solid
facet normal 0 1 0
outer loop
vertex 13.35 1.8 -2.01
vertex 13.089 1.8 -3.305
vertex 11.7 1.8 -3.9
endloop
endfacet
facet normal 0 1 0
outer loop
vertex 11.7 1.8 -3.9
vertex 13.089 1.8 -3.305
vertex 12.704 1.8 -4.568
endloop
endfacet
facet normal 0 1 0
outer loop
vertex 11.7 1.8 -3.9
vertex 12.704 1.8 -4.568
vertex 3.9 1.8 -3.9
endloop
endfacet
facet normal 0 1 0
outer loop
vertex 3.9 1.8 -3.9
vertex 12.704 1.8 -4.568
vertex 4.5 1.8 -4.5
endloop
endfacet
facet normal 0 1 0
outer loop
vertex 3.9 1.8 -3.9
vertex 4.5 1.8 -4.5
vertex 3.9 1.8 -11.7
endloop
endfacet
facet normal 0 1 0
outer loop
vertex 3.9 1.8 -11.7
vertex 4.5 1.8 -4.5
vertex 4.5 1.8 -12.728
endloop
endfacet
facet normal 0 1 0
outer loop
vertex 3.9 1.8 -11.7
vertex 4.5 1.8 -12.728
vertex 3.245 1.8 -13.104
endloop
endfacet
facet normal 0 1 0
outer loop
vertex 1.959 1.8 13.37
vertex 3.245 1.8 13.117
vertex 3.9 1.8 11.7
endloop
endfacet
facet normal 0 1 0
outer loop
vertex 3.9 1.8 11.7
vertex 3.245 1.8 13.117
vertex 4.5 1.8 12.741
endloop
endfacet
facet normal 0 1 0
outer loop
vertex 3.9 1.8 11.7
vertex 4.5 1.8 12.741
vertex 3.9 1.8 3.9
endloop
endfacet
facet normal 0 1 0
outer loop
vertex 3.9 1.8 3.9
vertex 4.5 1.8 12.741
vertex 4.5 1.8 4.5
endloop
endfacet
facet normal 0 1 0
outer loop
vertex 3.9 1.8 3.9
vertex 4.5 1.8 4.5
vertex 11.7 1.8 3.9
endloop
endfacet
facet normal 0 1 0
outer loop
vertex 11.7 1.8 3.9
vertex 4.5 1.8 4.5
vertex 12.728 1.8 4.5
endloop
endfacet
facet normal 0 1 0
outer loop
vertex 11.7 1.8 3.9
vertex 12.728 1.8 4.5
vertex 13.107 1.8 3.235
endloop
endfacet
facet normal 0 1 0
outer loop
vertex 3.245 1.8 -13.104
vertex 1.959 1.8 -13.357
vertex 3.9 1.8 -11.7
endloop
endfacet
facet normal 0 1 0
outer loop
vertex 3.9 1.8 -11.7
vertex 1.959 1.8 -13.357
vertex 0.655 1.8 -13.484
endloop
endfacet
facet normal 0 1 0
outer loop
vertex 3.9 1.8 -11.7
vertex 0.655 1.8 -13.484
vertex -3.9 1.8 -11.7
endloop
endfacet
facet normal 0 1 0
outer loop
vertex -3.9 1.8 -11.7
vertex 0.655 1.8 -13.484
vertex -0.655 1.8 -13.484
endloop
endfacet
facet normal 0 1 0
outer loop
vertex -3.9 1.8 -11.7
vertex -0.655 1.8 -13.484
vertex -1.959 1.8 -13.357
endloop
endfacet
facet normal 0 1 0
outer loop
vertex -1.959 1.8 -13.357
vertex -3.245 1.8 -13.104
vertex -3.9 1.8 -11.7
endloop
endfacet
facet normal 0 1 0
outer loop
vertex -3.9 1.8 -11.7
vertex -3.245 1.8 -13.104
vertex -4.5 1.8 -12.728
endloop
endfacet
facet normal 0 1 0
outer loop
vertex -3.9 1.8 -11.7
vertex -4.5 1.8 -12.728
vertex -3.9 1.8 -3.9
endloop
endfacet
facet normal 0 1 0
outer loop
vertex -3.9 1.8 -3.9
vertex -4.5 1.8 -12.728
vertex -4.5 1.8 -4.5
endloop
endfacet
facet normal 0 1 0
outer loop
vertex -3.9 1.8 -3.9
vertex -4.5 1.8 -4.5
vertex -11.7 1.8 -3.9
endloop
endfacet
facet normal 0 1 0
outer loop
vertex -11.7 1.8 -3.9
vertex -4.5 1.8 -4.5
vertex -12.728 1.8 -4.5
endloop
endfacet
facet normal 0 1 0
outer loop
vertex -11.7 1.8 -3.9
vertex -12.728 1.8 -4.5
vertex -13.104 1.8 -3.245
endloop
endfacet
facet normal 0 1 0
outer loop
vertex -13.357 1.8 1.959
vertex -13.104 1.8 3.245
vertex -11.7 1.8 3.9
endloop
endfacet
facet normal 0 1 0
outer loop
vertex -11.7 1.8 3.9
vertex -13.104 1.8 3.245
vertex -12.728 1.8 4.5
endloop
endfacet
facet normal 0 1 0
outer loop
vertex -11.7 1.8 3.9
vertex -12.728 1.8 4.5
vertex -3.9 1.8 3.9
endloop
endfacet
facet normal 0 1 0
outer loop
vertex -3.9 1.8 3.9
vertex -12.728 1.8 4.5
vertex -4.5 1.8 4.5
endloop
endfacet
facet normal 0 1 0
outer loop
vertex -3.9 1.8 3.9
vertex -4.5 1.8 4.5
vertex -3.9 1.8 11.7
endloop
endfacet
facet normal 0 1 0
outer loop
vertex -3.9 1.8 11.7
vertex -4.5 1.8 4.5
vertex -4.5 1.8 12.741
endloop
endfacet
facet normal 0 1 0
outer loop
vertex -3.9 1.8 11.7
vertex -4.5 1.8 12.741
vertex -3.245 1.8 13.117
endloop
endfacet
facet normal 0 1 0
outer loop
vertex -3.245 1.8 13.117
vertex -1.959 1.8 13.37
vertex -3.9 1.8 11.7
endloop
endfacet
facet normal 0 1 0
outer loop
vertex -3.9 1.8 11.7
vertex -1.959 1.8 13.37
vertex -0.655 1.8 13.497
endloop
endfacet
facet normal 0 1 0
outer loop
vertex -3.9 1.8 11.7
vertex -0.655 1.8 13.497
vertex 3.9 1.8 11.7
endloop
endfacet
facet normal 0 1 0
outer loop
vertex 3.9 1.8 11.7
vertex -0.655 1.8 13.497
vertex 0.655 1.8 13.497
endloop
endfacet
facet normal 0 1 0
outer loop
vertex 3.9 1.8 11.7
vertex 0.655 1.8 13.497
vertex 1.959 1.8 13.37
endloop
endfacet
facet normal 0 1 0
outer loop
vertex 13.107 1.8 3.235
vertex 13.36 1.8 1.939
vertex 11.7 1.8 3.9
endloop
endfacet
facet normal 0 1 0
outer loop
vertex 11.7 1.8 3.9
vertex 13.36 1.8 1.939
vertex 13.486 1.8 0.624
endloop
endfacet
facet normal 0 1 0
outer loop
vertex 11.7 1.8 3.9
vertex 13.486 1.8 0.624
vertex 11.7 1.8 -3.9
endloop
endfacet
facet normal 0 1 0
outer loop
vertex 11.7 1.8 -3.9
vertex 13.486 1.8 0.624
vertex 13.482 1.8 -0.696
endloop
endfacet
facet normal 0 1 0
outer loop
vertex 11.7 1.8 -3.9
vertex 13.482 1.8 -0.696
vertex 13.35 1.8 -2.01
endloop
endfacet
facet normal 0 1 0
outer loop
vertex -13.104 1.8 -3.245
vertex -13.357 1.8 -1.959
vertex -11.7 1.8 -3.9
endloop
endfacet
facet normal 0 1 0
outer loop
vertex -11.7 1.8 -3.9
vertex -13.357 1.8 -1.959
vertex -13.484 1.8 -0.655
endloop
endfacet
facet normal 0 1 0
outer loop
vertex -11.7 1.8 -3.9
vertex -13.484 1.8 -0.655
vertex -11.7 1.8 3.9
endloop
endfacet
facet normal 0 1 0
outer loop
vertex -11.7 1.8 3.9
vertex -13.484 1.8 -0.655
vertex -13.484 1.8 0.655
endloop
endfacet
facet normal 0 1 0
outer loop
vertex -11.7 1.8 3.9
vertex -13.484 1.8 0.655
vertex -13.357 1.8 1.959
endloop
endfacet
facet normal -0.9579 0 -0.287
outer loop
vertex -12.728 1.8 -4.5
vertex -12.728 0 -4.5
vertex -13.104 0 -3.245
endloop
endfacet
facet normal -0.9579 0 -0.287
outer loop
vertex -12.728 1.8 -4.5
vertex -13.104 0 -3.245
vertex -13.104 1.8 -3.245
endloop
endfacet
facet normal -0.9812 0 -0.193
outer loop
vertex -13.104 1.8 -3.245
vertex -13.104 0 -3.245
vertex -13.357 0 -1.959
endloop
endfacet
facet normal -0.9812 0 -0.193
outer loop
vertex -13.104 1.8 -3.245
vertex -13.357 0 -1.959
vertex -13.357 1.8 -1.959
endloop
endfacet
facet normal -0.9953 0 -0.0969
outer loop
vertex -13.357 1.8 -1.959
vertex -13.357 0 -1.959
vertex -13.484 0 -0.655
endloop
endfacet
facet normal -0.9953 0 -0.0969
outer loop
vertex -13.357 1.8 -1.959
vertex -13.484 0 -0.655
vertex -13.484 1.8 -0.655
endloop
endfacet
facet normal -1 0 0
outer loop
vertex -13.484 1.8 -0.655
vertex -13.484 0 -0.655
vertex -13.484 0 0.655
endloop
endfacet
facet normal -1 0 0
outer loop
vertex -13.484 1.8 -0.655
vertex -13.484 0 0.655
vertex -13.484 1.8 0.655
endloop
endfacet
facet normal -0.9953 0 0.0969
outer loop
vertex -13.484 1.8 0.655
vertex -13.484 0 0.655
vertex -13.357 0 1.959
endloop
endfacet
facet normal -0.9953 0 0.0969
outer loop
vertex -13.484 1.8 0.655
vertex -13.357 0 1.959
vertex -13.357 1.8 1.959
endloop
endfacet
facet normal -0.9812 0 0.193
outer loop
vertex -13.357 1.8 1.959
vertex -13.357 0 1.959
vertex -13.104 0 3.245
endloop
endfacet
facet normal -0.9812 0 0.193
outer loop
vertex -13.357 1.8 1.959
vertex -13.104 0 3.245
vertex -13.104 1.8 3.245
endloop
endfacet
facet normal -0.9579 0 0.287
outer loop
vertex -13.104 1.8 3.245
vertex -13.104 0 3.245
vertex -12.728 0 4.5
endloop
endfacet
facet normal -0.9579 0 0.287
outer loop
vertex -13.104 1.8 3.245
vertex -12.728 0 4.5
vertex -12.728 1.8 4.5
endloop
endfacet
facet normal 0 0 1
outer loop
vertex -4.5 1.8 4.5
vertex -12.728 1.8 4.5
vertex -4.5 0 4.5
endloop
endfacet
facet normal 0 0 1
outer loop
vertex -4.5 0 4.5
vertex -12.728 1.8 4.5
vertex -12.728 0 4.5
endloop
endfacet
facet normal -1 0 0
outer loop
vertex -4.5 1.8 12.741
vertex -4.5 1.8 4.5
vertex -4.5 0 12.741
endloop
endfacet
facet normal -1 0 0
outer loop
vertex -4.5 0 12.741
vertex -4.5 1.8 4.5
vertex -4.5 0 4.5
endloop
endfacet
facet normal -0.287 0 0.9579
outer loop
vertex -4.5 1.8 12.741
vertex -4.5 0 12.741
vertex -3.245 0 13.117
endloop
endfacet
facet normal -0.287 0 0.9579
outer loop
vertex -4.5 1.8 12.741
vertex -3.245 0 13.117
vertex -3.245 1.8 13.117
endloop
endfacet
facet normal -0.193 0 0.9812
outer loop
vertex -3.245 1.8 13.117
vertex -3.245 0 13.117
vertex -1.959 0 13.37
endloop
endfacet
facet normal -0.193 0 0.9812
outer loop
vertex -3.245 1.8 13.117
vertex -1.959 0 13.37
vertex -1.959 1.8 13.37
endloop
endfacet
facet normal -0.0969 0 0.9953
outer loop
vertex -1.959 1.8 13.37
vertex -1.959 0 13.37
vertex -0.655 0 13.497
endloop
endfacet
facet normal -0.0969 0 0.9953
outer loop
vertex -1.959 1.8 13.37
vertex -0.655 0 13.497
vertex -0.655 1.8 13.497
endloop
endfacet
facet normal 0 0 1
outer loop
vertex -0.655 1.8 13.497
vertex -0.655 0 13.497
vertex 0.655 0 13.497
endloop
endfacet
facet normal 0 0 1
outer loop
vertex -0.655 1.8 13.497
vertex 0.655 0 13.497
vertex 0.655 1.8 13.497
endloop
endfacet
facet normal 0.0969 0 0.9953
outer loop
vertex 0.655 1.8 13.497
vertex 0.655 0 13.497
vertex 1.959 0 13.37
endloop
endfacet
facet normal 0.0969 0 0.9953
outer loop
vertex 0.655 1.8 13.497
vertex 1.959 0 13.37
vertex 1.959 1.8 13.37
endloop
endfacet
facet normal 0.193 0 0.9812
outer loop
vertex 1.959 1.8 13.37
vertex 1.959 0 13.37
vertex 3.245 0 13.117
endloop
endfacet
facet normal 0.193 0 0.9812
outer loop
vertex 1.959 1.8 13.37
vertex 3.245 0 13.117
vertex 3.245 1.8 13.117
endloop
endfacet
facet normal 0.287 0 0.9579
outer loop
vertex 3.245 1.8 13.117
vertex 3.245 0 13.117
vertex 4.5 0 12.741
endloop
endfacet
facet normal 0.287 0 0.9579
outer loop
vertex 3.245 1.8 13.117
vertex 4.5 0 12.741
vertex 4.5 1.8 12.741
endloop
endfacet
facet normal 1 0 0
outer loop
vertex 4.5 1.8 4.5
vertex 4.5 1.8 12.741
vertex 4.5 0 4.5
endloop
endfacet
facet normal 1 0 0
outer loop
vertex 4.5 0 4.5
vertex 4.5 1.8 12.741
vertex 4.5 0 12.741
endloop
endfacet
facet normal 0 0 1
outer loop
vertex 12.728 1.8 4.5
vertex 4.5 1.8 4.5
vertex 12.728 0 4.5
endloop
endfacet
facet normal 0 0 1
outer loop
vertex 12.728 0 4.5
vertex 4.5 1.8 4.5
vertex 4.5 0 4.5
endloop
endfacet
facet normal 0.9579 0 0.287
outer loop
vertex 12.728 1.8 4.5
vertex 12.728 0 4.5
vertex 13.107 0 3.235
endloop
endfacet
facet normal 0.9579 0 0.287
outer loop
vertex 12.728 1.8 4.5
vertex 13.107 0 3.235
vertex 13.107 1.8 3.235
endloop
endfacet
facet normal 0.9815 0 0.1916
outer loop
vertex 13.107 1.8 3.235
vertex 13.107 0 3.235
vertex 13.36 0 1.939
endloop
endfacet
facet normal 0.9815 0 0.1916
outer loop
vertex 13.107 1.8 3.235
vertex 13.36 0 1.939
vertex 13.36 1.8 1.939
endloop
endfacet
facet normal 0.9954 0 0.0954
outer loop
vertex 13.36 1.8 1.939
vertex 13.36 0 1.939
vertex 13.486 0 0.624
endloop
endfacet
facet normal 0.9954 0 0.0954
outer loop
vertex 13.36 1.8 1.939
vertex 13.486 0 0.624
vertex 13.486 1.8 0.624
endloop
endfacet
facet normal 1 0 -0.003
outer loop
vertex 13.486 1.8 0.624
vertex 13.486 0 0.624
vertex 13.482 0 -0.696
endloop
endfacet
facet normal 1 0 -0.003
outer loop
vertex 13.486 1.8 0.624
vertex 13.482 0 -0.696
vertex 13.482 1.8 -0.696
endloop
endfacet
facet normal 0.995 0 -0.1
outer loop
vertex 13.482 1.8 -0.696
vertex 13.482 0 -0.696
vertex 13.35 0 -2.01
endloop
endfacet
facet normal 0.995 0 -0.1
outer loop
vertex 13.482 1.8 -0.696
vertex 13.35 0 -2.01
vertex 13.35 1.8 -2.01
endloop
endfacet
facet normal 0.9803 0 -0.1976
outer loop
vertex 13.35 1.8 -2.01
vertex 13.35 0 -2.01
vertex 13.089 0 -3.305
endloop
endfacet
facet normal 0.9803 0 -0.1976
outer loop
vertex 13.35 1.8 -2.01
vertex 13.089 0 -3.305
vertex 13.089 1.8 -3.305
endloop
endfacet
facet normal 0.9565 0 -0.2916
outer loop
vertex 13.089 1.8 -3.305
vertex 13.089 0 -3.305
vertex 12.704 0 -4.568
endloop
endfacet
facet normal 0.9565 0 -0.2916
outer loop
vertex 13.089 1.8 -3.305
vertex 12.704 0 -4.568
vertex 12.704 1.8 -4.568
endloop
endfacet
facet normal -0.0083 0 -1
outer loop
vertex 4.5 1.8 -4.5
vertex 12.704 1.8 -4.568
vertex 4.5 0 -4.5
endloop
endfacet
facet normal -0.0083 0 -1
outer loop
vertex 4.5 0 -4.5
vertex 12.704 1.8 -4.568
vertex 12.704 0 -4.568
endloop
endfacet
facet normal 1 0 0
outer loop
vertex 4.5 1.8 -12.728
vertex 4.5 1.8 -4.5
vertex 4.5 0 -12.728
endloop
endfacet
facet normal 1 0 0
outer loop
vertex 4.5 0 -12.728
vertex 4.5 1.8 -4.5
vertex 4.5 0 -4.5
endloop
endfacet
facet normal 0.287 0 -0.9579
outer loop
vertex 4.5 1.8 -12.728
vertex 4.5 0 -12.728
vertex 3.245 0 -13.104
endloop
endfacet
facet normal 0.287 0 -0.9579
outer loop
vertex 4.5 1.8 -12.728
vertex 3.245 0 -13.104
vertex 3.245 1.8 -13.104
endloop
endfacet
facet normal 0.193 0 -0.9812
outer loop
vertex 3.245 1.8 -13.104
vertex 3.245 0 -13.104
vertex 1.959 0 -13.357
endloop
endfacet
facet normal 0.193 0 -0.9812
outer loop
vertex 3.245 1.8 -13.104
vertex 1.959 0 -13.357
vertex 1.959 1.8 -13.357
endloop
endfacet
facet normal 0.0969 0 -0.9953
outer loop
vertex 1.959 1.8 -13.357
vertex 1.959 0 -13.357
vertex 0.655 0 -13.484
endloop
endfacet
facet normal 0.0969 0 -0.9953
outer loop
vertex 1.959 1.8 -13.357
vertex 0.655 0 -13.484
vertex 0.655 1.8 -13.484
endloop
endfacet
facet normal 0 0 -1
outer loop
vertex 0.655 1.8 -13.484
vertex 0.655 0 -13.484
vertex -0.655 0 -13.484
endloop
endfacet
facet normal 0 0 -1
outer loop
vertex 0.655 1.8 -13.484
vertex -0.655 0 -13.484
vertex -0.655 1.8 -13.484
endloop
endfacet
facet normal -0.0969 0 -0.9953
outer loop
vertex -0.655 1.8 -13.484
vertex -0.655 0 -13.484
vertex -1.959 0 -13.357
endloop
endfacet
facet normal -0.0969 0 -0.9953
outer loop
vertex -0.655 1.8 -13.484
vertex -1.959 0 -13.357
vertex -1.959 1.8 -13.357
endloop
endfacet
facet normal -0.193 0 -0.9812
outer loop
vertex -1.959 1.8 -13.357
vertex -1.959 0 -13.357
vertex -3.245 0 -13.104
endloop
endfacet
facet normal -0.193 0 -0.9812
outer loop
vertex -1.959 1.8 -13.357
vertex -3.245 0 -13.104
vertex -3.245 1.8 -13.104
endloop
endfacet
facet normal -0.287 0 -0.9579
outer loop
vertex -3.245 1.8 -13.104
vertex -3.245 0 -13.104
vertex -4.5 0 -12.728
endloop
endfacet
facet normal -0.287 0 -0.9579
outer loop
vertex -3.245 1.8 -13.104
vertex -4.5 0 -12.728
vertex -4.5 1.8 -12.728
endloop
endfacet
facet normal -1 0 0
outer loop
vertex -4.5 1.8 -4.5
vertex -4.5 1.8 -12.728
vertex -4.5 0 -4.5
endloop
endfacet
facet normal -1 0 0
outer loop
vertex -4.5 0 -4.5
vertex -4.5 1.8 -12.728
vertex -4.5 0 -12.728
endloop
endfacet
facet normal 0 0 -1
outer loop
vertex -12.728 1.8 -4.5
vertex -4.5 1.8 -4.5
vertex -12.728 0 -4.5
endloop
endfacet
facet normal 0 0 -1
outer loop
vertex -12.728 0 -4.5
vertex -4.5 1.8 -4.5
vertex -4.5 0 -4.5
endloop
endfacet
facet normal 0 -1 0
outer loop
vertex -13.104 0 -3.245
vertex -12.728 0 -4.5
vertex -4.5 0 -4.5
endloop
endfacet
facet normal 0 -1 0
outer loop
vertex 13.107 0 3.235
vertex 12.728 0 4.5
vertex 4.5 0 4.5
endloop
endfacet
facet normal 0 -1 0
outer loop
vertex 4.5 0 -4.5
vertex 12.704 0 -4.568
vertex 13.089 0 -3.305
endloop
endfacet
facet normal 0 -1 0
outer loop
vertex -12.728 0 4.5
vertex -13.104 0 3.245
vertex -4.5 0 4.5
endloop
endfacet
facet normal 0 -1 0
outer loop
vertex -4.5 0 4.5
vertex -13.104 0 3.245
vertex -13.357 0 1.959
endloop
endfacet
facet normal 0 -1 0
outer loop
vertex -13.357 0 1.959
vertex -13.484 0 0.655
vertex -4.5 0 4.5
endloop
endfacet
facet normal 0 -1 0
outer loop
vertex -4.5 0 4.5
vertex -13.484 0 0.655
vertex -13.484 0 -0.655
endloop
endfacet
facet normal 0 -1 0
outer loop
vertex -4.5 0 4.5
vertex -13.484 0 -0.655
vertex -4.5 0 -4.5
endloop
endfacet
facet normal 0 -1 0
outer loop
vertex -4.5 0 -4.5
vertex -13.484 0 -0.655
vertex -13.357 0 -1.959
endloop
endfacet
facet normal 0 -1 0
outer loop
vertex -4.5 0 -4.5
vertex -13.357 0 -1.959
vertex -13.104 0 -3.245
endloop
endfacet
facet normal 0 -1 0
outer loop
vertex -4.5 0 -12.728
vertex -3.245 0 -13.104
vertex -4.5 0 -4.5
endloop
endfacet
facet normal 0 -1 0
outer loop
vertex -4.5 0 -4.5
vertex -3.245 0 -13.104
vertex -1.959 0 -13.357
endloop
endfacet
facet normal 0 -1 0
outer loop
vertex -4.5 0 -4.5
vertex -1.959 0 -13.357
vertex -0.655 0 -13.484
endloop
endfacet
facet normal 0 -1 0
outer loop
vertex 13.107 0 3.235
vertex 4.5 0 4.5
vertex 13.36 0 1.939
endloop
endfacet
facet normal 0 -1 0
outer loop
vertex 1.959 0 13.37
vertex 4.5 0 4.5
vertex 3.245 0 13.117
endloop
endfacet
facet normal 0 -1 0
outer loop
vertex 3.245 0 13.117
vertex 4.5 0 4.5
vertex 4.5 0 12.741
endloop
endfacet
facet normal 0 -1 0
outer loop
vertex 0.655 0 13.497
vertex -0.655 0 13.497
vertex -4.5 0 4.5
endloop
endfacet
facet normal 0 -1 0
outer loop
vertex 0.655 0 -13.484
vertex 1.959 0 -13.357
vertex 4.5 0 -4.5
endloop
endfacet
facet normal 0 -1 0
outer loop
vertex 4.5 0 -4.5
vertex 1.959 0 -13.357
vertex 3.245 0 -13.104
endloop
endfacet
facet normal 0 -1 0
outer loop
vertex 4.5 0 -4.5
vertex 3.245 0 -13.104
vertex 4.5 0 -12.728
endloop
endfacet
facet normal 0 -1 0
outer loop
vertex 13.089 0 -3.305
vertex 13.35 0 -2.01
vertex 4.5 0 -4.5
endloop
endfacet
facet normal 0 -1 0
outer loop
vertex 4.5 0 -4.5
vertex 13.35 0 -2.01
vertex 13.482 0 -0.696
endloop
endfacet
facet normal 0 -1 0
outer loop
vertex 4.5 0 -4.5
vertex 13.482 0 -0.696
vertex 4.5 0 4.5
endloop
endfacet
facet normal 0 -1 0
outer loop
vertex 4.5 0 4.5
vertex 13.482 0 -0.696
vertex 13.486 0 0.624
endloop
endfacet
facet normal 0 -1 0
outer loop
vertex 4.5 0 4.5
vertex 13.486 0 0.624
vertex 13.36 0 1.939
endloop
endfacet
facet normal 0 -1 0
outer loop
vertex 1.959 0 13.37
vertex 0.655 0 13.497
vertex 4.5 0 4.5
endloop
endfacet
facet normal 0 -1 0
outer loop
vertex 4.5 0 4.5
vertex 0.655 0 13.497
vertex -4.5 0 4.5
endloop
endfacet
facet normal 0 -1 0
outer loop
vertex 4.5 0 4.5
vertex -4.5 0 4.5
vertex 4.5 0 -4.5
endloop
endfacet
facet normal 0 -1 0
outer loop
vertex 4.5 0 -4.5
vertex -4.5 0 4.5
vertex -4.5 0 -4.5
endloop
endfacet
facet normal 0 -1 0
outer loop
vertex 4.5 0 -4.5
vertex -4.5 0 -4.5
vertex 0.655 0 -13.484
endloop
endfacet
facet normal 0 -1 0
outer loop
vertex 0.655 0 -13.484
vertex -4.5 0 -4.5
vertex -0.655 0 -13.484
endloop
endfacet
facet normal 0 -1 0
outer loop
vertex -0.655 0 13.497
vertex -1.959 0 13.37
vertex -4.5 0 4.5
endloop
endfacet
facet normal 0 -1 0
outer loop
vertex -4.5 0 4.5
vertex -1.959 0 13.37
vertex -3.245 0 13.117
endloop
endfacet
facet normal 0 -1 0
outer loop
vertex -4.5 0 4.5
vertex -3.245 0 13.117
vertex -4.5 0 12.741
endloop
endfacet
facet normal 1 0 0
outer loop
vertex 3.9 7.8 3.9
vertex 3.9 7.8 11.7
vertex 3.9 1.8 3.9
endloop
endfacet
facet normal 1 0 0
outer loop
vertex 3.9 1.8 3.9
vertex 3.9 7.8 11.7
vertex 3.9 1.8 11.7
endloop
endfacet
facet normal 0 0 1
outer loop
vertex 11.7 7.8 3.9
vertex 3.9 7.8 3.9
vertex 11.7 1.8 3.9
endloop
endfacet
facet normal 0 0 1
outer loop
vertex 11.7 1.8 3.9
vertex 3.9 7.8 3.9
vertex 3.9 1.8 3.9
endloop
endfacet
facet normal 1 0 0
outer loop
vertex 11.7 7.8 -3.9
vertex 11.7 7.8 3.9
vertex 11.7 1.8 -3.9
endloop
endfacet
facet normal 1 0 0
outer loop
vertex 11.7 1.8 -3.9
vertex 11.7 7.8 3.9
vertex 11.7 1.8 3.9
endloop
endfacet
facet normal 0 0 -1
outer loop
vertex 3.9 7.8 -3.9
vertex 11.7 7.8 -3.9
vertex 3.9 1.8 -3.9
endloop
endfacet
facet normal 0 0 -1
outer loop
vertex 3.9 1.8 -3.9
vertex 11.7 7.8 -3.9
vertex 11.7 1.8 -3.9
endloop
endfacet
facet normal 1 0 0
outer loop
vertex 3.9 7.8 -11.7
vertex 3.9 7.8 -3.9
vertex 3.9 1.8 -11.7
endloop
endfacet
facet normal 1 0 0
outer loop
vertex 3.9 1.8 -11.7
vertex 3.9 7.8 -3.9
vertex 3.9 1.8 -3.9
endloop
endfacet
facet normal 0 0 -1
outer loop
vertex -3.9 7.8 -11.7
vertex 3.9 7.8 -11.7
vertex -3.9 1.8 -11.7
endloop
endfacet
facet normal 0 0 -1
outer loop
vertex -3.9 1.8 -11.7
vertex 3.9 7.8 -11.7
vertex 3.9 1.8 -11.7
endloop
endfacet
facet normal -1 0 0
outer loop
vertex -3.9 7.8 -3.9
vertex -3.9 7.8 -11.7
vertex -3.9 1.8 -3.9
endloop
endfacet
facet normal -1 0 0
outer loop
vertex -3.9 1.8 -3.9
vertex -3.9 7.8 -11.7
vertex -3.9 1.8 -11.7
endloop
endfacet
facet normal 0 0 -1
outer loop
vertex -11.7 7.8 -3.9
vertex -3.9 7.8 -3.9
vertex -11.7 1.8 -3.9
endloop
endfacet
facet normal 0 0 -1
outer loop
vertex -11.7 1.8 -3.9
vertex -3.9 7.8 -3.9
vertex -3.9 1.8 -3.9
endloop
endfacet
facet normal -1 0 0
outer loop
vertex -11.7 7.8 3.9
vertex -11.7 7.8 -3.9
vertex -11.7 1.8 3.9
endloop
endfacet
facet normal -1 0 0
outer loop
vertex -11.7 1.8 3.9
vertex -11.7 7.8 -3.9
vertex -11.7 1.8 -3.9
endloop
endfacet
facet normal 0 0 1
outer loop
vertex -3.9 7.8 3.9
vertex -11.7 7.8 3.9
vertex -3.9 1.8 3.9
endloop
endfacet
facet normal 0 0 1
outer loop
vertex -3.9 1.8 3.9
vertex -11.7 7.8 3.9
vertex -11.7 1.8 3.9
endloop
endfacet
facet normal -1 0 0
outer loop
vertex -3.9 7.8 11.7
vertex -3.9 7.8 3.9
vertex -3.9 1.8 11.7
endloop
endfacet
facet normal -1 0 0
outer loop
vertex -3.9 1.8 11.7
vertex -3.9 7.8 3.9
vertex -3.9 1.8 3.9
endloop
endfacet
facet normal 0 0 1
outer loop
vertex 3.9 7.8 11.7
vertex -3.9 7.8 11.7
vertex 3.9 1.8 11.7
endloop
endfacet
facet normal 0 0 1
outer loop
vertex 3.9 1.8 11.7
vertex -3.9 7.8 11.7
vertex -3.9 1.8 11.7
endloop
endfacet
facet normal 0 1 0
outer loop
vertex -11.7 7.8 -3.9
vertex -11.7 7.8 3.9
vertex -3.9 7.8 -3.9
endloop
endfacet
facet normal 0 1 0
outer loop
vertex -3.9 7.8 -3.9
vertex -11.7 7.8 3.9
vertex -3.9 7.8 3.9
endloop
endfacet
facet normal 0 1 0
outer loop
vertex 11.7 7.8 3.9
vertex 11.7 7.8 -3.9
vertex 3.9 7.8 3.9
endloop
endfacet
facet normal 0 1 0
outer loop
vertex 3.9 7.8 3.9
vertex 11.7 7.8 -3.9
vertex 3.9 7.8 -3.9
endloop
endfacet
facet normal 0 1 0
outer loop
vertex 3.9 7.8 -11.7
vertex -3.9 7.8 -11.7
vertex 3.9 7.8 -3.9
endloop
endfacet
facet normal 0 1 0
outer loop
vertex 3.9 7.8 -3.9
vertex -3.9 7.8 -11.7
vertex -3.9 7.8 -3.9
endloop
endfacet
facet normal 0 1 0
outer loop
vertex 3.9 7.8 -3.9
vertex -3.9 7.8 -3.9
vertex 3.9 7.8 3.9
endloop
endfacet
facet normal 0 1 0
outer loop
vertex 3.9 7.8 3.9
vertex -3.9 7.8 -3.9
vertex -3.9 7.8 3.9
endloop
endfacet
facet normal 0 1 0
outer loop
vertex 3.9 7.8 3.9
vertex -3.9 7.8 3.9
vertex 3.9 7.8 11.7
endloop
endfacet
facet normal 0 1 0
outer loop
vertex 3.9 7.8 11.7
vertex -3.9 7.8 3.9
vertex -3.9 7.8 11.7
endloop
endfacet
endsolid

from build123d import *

# Parameters (mm, degrees)
EXTRUDE_2_DEPTH = 1.8
EXTRUDE_3_DEPTH = 6


with BuildPart() as part:
    # 草图3 → 凸台-拉伸2 (new body)
    with BuildSketch(Plane(origin=(0, 0, 0), x_dir=(1, 0, 0), z_dir=(0, 1, 0))):
        with BuildLine():
            Line((-12.727922061, 4.5), (-4.5, 4.5))
            Line((-4.5, 4.5), (-4.5, 12.727922061))
            ThreePointArc((-4.5, 12.727922061), (0, 13.5), (4.5, 12.727922061))
            Line((4.5, 12.727922061), (4.5, 4.5))
            Line((4.5, 4.5), (12.703836594, 4.567552496))
            ThreePointArc((12.703836594, 4.567552496), (13.499952375, 0.035858923), (12.727922061, -4.5))
            Line((12.727922061, -4.5), (4.5, -4.5))
            Line((4.5, -4.5), (4.5, -12.741400862))
            ThreePointArc((4.5, -12.741400862), (0, -13.512708682), (-4.5, -12.741400862))
            Line((-4.5, -12.741400862), (-4.5, -4.5))
            Line((-4.5, -4.5), (-12.727922061, -4.5))
            ThreePointArc((-12.727922061, -4.5), (-13.5, 0), (-12.727922061, 4.5))
        make_face()
    extrude(amount=EXTRUDE_2_DEPTH)

    # 草图4 → 凸台-拉伸3 (add)
    with BuildSketch(Plane(origin=(0, 1.8, 0), x_dir=(1, 0, 0), z_dir=(0, 1, 0))):
        Polygon((3.9, -11.7), (-3.9, -11.7), (-3.9, -3.9), (-11.7, -3.9), (-11.7, 3.9), (-3.9, 3.9), (-3.9, 11.7), (3.9, 11.7), (3.9, 3.9), (11.7, 3.9), (11.7, -3.9), (3.9, -3.9), align=None)
    extrude(amount=EXTRUDE_3_DEPTH)


solid = part.part
